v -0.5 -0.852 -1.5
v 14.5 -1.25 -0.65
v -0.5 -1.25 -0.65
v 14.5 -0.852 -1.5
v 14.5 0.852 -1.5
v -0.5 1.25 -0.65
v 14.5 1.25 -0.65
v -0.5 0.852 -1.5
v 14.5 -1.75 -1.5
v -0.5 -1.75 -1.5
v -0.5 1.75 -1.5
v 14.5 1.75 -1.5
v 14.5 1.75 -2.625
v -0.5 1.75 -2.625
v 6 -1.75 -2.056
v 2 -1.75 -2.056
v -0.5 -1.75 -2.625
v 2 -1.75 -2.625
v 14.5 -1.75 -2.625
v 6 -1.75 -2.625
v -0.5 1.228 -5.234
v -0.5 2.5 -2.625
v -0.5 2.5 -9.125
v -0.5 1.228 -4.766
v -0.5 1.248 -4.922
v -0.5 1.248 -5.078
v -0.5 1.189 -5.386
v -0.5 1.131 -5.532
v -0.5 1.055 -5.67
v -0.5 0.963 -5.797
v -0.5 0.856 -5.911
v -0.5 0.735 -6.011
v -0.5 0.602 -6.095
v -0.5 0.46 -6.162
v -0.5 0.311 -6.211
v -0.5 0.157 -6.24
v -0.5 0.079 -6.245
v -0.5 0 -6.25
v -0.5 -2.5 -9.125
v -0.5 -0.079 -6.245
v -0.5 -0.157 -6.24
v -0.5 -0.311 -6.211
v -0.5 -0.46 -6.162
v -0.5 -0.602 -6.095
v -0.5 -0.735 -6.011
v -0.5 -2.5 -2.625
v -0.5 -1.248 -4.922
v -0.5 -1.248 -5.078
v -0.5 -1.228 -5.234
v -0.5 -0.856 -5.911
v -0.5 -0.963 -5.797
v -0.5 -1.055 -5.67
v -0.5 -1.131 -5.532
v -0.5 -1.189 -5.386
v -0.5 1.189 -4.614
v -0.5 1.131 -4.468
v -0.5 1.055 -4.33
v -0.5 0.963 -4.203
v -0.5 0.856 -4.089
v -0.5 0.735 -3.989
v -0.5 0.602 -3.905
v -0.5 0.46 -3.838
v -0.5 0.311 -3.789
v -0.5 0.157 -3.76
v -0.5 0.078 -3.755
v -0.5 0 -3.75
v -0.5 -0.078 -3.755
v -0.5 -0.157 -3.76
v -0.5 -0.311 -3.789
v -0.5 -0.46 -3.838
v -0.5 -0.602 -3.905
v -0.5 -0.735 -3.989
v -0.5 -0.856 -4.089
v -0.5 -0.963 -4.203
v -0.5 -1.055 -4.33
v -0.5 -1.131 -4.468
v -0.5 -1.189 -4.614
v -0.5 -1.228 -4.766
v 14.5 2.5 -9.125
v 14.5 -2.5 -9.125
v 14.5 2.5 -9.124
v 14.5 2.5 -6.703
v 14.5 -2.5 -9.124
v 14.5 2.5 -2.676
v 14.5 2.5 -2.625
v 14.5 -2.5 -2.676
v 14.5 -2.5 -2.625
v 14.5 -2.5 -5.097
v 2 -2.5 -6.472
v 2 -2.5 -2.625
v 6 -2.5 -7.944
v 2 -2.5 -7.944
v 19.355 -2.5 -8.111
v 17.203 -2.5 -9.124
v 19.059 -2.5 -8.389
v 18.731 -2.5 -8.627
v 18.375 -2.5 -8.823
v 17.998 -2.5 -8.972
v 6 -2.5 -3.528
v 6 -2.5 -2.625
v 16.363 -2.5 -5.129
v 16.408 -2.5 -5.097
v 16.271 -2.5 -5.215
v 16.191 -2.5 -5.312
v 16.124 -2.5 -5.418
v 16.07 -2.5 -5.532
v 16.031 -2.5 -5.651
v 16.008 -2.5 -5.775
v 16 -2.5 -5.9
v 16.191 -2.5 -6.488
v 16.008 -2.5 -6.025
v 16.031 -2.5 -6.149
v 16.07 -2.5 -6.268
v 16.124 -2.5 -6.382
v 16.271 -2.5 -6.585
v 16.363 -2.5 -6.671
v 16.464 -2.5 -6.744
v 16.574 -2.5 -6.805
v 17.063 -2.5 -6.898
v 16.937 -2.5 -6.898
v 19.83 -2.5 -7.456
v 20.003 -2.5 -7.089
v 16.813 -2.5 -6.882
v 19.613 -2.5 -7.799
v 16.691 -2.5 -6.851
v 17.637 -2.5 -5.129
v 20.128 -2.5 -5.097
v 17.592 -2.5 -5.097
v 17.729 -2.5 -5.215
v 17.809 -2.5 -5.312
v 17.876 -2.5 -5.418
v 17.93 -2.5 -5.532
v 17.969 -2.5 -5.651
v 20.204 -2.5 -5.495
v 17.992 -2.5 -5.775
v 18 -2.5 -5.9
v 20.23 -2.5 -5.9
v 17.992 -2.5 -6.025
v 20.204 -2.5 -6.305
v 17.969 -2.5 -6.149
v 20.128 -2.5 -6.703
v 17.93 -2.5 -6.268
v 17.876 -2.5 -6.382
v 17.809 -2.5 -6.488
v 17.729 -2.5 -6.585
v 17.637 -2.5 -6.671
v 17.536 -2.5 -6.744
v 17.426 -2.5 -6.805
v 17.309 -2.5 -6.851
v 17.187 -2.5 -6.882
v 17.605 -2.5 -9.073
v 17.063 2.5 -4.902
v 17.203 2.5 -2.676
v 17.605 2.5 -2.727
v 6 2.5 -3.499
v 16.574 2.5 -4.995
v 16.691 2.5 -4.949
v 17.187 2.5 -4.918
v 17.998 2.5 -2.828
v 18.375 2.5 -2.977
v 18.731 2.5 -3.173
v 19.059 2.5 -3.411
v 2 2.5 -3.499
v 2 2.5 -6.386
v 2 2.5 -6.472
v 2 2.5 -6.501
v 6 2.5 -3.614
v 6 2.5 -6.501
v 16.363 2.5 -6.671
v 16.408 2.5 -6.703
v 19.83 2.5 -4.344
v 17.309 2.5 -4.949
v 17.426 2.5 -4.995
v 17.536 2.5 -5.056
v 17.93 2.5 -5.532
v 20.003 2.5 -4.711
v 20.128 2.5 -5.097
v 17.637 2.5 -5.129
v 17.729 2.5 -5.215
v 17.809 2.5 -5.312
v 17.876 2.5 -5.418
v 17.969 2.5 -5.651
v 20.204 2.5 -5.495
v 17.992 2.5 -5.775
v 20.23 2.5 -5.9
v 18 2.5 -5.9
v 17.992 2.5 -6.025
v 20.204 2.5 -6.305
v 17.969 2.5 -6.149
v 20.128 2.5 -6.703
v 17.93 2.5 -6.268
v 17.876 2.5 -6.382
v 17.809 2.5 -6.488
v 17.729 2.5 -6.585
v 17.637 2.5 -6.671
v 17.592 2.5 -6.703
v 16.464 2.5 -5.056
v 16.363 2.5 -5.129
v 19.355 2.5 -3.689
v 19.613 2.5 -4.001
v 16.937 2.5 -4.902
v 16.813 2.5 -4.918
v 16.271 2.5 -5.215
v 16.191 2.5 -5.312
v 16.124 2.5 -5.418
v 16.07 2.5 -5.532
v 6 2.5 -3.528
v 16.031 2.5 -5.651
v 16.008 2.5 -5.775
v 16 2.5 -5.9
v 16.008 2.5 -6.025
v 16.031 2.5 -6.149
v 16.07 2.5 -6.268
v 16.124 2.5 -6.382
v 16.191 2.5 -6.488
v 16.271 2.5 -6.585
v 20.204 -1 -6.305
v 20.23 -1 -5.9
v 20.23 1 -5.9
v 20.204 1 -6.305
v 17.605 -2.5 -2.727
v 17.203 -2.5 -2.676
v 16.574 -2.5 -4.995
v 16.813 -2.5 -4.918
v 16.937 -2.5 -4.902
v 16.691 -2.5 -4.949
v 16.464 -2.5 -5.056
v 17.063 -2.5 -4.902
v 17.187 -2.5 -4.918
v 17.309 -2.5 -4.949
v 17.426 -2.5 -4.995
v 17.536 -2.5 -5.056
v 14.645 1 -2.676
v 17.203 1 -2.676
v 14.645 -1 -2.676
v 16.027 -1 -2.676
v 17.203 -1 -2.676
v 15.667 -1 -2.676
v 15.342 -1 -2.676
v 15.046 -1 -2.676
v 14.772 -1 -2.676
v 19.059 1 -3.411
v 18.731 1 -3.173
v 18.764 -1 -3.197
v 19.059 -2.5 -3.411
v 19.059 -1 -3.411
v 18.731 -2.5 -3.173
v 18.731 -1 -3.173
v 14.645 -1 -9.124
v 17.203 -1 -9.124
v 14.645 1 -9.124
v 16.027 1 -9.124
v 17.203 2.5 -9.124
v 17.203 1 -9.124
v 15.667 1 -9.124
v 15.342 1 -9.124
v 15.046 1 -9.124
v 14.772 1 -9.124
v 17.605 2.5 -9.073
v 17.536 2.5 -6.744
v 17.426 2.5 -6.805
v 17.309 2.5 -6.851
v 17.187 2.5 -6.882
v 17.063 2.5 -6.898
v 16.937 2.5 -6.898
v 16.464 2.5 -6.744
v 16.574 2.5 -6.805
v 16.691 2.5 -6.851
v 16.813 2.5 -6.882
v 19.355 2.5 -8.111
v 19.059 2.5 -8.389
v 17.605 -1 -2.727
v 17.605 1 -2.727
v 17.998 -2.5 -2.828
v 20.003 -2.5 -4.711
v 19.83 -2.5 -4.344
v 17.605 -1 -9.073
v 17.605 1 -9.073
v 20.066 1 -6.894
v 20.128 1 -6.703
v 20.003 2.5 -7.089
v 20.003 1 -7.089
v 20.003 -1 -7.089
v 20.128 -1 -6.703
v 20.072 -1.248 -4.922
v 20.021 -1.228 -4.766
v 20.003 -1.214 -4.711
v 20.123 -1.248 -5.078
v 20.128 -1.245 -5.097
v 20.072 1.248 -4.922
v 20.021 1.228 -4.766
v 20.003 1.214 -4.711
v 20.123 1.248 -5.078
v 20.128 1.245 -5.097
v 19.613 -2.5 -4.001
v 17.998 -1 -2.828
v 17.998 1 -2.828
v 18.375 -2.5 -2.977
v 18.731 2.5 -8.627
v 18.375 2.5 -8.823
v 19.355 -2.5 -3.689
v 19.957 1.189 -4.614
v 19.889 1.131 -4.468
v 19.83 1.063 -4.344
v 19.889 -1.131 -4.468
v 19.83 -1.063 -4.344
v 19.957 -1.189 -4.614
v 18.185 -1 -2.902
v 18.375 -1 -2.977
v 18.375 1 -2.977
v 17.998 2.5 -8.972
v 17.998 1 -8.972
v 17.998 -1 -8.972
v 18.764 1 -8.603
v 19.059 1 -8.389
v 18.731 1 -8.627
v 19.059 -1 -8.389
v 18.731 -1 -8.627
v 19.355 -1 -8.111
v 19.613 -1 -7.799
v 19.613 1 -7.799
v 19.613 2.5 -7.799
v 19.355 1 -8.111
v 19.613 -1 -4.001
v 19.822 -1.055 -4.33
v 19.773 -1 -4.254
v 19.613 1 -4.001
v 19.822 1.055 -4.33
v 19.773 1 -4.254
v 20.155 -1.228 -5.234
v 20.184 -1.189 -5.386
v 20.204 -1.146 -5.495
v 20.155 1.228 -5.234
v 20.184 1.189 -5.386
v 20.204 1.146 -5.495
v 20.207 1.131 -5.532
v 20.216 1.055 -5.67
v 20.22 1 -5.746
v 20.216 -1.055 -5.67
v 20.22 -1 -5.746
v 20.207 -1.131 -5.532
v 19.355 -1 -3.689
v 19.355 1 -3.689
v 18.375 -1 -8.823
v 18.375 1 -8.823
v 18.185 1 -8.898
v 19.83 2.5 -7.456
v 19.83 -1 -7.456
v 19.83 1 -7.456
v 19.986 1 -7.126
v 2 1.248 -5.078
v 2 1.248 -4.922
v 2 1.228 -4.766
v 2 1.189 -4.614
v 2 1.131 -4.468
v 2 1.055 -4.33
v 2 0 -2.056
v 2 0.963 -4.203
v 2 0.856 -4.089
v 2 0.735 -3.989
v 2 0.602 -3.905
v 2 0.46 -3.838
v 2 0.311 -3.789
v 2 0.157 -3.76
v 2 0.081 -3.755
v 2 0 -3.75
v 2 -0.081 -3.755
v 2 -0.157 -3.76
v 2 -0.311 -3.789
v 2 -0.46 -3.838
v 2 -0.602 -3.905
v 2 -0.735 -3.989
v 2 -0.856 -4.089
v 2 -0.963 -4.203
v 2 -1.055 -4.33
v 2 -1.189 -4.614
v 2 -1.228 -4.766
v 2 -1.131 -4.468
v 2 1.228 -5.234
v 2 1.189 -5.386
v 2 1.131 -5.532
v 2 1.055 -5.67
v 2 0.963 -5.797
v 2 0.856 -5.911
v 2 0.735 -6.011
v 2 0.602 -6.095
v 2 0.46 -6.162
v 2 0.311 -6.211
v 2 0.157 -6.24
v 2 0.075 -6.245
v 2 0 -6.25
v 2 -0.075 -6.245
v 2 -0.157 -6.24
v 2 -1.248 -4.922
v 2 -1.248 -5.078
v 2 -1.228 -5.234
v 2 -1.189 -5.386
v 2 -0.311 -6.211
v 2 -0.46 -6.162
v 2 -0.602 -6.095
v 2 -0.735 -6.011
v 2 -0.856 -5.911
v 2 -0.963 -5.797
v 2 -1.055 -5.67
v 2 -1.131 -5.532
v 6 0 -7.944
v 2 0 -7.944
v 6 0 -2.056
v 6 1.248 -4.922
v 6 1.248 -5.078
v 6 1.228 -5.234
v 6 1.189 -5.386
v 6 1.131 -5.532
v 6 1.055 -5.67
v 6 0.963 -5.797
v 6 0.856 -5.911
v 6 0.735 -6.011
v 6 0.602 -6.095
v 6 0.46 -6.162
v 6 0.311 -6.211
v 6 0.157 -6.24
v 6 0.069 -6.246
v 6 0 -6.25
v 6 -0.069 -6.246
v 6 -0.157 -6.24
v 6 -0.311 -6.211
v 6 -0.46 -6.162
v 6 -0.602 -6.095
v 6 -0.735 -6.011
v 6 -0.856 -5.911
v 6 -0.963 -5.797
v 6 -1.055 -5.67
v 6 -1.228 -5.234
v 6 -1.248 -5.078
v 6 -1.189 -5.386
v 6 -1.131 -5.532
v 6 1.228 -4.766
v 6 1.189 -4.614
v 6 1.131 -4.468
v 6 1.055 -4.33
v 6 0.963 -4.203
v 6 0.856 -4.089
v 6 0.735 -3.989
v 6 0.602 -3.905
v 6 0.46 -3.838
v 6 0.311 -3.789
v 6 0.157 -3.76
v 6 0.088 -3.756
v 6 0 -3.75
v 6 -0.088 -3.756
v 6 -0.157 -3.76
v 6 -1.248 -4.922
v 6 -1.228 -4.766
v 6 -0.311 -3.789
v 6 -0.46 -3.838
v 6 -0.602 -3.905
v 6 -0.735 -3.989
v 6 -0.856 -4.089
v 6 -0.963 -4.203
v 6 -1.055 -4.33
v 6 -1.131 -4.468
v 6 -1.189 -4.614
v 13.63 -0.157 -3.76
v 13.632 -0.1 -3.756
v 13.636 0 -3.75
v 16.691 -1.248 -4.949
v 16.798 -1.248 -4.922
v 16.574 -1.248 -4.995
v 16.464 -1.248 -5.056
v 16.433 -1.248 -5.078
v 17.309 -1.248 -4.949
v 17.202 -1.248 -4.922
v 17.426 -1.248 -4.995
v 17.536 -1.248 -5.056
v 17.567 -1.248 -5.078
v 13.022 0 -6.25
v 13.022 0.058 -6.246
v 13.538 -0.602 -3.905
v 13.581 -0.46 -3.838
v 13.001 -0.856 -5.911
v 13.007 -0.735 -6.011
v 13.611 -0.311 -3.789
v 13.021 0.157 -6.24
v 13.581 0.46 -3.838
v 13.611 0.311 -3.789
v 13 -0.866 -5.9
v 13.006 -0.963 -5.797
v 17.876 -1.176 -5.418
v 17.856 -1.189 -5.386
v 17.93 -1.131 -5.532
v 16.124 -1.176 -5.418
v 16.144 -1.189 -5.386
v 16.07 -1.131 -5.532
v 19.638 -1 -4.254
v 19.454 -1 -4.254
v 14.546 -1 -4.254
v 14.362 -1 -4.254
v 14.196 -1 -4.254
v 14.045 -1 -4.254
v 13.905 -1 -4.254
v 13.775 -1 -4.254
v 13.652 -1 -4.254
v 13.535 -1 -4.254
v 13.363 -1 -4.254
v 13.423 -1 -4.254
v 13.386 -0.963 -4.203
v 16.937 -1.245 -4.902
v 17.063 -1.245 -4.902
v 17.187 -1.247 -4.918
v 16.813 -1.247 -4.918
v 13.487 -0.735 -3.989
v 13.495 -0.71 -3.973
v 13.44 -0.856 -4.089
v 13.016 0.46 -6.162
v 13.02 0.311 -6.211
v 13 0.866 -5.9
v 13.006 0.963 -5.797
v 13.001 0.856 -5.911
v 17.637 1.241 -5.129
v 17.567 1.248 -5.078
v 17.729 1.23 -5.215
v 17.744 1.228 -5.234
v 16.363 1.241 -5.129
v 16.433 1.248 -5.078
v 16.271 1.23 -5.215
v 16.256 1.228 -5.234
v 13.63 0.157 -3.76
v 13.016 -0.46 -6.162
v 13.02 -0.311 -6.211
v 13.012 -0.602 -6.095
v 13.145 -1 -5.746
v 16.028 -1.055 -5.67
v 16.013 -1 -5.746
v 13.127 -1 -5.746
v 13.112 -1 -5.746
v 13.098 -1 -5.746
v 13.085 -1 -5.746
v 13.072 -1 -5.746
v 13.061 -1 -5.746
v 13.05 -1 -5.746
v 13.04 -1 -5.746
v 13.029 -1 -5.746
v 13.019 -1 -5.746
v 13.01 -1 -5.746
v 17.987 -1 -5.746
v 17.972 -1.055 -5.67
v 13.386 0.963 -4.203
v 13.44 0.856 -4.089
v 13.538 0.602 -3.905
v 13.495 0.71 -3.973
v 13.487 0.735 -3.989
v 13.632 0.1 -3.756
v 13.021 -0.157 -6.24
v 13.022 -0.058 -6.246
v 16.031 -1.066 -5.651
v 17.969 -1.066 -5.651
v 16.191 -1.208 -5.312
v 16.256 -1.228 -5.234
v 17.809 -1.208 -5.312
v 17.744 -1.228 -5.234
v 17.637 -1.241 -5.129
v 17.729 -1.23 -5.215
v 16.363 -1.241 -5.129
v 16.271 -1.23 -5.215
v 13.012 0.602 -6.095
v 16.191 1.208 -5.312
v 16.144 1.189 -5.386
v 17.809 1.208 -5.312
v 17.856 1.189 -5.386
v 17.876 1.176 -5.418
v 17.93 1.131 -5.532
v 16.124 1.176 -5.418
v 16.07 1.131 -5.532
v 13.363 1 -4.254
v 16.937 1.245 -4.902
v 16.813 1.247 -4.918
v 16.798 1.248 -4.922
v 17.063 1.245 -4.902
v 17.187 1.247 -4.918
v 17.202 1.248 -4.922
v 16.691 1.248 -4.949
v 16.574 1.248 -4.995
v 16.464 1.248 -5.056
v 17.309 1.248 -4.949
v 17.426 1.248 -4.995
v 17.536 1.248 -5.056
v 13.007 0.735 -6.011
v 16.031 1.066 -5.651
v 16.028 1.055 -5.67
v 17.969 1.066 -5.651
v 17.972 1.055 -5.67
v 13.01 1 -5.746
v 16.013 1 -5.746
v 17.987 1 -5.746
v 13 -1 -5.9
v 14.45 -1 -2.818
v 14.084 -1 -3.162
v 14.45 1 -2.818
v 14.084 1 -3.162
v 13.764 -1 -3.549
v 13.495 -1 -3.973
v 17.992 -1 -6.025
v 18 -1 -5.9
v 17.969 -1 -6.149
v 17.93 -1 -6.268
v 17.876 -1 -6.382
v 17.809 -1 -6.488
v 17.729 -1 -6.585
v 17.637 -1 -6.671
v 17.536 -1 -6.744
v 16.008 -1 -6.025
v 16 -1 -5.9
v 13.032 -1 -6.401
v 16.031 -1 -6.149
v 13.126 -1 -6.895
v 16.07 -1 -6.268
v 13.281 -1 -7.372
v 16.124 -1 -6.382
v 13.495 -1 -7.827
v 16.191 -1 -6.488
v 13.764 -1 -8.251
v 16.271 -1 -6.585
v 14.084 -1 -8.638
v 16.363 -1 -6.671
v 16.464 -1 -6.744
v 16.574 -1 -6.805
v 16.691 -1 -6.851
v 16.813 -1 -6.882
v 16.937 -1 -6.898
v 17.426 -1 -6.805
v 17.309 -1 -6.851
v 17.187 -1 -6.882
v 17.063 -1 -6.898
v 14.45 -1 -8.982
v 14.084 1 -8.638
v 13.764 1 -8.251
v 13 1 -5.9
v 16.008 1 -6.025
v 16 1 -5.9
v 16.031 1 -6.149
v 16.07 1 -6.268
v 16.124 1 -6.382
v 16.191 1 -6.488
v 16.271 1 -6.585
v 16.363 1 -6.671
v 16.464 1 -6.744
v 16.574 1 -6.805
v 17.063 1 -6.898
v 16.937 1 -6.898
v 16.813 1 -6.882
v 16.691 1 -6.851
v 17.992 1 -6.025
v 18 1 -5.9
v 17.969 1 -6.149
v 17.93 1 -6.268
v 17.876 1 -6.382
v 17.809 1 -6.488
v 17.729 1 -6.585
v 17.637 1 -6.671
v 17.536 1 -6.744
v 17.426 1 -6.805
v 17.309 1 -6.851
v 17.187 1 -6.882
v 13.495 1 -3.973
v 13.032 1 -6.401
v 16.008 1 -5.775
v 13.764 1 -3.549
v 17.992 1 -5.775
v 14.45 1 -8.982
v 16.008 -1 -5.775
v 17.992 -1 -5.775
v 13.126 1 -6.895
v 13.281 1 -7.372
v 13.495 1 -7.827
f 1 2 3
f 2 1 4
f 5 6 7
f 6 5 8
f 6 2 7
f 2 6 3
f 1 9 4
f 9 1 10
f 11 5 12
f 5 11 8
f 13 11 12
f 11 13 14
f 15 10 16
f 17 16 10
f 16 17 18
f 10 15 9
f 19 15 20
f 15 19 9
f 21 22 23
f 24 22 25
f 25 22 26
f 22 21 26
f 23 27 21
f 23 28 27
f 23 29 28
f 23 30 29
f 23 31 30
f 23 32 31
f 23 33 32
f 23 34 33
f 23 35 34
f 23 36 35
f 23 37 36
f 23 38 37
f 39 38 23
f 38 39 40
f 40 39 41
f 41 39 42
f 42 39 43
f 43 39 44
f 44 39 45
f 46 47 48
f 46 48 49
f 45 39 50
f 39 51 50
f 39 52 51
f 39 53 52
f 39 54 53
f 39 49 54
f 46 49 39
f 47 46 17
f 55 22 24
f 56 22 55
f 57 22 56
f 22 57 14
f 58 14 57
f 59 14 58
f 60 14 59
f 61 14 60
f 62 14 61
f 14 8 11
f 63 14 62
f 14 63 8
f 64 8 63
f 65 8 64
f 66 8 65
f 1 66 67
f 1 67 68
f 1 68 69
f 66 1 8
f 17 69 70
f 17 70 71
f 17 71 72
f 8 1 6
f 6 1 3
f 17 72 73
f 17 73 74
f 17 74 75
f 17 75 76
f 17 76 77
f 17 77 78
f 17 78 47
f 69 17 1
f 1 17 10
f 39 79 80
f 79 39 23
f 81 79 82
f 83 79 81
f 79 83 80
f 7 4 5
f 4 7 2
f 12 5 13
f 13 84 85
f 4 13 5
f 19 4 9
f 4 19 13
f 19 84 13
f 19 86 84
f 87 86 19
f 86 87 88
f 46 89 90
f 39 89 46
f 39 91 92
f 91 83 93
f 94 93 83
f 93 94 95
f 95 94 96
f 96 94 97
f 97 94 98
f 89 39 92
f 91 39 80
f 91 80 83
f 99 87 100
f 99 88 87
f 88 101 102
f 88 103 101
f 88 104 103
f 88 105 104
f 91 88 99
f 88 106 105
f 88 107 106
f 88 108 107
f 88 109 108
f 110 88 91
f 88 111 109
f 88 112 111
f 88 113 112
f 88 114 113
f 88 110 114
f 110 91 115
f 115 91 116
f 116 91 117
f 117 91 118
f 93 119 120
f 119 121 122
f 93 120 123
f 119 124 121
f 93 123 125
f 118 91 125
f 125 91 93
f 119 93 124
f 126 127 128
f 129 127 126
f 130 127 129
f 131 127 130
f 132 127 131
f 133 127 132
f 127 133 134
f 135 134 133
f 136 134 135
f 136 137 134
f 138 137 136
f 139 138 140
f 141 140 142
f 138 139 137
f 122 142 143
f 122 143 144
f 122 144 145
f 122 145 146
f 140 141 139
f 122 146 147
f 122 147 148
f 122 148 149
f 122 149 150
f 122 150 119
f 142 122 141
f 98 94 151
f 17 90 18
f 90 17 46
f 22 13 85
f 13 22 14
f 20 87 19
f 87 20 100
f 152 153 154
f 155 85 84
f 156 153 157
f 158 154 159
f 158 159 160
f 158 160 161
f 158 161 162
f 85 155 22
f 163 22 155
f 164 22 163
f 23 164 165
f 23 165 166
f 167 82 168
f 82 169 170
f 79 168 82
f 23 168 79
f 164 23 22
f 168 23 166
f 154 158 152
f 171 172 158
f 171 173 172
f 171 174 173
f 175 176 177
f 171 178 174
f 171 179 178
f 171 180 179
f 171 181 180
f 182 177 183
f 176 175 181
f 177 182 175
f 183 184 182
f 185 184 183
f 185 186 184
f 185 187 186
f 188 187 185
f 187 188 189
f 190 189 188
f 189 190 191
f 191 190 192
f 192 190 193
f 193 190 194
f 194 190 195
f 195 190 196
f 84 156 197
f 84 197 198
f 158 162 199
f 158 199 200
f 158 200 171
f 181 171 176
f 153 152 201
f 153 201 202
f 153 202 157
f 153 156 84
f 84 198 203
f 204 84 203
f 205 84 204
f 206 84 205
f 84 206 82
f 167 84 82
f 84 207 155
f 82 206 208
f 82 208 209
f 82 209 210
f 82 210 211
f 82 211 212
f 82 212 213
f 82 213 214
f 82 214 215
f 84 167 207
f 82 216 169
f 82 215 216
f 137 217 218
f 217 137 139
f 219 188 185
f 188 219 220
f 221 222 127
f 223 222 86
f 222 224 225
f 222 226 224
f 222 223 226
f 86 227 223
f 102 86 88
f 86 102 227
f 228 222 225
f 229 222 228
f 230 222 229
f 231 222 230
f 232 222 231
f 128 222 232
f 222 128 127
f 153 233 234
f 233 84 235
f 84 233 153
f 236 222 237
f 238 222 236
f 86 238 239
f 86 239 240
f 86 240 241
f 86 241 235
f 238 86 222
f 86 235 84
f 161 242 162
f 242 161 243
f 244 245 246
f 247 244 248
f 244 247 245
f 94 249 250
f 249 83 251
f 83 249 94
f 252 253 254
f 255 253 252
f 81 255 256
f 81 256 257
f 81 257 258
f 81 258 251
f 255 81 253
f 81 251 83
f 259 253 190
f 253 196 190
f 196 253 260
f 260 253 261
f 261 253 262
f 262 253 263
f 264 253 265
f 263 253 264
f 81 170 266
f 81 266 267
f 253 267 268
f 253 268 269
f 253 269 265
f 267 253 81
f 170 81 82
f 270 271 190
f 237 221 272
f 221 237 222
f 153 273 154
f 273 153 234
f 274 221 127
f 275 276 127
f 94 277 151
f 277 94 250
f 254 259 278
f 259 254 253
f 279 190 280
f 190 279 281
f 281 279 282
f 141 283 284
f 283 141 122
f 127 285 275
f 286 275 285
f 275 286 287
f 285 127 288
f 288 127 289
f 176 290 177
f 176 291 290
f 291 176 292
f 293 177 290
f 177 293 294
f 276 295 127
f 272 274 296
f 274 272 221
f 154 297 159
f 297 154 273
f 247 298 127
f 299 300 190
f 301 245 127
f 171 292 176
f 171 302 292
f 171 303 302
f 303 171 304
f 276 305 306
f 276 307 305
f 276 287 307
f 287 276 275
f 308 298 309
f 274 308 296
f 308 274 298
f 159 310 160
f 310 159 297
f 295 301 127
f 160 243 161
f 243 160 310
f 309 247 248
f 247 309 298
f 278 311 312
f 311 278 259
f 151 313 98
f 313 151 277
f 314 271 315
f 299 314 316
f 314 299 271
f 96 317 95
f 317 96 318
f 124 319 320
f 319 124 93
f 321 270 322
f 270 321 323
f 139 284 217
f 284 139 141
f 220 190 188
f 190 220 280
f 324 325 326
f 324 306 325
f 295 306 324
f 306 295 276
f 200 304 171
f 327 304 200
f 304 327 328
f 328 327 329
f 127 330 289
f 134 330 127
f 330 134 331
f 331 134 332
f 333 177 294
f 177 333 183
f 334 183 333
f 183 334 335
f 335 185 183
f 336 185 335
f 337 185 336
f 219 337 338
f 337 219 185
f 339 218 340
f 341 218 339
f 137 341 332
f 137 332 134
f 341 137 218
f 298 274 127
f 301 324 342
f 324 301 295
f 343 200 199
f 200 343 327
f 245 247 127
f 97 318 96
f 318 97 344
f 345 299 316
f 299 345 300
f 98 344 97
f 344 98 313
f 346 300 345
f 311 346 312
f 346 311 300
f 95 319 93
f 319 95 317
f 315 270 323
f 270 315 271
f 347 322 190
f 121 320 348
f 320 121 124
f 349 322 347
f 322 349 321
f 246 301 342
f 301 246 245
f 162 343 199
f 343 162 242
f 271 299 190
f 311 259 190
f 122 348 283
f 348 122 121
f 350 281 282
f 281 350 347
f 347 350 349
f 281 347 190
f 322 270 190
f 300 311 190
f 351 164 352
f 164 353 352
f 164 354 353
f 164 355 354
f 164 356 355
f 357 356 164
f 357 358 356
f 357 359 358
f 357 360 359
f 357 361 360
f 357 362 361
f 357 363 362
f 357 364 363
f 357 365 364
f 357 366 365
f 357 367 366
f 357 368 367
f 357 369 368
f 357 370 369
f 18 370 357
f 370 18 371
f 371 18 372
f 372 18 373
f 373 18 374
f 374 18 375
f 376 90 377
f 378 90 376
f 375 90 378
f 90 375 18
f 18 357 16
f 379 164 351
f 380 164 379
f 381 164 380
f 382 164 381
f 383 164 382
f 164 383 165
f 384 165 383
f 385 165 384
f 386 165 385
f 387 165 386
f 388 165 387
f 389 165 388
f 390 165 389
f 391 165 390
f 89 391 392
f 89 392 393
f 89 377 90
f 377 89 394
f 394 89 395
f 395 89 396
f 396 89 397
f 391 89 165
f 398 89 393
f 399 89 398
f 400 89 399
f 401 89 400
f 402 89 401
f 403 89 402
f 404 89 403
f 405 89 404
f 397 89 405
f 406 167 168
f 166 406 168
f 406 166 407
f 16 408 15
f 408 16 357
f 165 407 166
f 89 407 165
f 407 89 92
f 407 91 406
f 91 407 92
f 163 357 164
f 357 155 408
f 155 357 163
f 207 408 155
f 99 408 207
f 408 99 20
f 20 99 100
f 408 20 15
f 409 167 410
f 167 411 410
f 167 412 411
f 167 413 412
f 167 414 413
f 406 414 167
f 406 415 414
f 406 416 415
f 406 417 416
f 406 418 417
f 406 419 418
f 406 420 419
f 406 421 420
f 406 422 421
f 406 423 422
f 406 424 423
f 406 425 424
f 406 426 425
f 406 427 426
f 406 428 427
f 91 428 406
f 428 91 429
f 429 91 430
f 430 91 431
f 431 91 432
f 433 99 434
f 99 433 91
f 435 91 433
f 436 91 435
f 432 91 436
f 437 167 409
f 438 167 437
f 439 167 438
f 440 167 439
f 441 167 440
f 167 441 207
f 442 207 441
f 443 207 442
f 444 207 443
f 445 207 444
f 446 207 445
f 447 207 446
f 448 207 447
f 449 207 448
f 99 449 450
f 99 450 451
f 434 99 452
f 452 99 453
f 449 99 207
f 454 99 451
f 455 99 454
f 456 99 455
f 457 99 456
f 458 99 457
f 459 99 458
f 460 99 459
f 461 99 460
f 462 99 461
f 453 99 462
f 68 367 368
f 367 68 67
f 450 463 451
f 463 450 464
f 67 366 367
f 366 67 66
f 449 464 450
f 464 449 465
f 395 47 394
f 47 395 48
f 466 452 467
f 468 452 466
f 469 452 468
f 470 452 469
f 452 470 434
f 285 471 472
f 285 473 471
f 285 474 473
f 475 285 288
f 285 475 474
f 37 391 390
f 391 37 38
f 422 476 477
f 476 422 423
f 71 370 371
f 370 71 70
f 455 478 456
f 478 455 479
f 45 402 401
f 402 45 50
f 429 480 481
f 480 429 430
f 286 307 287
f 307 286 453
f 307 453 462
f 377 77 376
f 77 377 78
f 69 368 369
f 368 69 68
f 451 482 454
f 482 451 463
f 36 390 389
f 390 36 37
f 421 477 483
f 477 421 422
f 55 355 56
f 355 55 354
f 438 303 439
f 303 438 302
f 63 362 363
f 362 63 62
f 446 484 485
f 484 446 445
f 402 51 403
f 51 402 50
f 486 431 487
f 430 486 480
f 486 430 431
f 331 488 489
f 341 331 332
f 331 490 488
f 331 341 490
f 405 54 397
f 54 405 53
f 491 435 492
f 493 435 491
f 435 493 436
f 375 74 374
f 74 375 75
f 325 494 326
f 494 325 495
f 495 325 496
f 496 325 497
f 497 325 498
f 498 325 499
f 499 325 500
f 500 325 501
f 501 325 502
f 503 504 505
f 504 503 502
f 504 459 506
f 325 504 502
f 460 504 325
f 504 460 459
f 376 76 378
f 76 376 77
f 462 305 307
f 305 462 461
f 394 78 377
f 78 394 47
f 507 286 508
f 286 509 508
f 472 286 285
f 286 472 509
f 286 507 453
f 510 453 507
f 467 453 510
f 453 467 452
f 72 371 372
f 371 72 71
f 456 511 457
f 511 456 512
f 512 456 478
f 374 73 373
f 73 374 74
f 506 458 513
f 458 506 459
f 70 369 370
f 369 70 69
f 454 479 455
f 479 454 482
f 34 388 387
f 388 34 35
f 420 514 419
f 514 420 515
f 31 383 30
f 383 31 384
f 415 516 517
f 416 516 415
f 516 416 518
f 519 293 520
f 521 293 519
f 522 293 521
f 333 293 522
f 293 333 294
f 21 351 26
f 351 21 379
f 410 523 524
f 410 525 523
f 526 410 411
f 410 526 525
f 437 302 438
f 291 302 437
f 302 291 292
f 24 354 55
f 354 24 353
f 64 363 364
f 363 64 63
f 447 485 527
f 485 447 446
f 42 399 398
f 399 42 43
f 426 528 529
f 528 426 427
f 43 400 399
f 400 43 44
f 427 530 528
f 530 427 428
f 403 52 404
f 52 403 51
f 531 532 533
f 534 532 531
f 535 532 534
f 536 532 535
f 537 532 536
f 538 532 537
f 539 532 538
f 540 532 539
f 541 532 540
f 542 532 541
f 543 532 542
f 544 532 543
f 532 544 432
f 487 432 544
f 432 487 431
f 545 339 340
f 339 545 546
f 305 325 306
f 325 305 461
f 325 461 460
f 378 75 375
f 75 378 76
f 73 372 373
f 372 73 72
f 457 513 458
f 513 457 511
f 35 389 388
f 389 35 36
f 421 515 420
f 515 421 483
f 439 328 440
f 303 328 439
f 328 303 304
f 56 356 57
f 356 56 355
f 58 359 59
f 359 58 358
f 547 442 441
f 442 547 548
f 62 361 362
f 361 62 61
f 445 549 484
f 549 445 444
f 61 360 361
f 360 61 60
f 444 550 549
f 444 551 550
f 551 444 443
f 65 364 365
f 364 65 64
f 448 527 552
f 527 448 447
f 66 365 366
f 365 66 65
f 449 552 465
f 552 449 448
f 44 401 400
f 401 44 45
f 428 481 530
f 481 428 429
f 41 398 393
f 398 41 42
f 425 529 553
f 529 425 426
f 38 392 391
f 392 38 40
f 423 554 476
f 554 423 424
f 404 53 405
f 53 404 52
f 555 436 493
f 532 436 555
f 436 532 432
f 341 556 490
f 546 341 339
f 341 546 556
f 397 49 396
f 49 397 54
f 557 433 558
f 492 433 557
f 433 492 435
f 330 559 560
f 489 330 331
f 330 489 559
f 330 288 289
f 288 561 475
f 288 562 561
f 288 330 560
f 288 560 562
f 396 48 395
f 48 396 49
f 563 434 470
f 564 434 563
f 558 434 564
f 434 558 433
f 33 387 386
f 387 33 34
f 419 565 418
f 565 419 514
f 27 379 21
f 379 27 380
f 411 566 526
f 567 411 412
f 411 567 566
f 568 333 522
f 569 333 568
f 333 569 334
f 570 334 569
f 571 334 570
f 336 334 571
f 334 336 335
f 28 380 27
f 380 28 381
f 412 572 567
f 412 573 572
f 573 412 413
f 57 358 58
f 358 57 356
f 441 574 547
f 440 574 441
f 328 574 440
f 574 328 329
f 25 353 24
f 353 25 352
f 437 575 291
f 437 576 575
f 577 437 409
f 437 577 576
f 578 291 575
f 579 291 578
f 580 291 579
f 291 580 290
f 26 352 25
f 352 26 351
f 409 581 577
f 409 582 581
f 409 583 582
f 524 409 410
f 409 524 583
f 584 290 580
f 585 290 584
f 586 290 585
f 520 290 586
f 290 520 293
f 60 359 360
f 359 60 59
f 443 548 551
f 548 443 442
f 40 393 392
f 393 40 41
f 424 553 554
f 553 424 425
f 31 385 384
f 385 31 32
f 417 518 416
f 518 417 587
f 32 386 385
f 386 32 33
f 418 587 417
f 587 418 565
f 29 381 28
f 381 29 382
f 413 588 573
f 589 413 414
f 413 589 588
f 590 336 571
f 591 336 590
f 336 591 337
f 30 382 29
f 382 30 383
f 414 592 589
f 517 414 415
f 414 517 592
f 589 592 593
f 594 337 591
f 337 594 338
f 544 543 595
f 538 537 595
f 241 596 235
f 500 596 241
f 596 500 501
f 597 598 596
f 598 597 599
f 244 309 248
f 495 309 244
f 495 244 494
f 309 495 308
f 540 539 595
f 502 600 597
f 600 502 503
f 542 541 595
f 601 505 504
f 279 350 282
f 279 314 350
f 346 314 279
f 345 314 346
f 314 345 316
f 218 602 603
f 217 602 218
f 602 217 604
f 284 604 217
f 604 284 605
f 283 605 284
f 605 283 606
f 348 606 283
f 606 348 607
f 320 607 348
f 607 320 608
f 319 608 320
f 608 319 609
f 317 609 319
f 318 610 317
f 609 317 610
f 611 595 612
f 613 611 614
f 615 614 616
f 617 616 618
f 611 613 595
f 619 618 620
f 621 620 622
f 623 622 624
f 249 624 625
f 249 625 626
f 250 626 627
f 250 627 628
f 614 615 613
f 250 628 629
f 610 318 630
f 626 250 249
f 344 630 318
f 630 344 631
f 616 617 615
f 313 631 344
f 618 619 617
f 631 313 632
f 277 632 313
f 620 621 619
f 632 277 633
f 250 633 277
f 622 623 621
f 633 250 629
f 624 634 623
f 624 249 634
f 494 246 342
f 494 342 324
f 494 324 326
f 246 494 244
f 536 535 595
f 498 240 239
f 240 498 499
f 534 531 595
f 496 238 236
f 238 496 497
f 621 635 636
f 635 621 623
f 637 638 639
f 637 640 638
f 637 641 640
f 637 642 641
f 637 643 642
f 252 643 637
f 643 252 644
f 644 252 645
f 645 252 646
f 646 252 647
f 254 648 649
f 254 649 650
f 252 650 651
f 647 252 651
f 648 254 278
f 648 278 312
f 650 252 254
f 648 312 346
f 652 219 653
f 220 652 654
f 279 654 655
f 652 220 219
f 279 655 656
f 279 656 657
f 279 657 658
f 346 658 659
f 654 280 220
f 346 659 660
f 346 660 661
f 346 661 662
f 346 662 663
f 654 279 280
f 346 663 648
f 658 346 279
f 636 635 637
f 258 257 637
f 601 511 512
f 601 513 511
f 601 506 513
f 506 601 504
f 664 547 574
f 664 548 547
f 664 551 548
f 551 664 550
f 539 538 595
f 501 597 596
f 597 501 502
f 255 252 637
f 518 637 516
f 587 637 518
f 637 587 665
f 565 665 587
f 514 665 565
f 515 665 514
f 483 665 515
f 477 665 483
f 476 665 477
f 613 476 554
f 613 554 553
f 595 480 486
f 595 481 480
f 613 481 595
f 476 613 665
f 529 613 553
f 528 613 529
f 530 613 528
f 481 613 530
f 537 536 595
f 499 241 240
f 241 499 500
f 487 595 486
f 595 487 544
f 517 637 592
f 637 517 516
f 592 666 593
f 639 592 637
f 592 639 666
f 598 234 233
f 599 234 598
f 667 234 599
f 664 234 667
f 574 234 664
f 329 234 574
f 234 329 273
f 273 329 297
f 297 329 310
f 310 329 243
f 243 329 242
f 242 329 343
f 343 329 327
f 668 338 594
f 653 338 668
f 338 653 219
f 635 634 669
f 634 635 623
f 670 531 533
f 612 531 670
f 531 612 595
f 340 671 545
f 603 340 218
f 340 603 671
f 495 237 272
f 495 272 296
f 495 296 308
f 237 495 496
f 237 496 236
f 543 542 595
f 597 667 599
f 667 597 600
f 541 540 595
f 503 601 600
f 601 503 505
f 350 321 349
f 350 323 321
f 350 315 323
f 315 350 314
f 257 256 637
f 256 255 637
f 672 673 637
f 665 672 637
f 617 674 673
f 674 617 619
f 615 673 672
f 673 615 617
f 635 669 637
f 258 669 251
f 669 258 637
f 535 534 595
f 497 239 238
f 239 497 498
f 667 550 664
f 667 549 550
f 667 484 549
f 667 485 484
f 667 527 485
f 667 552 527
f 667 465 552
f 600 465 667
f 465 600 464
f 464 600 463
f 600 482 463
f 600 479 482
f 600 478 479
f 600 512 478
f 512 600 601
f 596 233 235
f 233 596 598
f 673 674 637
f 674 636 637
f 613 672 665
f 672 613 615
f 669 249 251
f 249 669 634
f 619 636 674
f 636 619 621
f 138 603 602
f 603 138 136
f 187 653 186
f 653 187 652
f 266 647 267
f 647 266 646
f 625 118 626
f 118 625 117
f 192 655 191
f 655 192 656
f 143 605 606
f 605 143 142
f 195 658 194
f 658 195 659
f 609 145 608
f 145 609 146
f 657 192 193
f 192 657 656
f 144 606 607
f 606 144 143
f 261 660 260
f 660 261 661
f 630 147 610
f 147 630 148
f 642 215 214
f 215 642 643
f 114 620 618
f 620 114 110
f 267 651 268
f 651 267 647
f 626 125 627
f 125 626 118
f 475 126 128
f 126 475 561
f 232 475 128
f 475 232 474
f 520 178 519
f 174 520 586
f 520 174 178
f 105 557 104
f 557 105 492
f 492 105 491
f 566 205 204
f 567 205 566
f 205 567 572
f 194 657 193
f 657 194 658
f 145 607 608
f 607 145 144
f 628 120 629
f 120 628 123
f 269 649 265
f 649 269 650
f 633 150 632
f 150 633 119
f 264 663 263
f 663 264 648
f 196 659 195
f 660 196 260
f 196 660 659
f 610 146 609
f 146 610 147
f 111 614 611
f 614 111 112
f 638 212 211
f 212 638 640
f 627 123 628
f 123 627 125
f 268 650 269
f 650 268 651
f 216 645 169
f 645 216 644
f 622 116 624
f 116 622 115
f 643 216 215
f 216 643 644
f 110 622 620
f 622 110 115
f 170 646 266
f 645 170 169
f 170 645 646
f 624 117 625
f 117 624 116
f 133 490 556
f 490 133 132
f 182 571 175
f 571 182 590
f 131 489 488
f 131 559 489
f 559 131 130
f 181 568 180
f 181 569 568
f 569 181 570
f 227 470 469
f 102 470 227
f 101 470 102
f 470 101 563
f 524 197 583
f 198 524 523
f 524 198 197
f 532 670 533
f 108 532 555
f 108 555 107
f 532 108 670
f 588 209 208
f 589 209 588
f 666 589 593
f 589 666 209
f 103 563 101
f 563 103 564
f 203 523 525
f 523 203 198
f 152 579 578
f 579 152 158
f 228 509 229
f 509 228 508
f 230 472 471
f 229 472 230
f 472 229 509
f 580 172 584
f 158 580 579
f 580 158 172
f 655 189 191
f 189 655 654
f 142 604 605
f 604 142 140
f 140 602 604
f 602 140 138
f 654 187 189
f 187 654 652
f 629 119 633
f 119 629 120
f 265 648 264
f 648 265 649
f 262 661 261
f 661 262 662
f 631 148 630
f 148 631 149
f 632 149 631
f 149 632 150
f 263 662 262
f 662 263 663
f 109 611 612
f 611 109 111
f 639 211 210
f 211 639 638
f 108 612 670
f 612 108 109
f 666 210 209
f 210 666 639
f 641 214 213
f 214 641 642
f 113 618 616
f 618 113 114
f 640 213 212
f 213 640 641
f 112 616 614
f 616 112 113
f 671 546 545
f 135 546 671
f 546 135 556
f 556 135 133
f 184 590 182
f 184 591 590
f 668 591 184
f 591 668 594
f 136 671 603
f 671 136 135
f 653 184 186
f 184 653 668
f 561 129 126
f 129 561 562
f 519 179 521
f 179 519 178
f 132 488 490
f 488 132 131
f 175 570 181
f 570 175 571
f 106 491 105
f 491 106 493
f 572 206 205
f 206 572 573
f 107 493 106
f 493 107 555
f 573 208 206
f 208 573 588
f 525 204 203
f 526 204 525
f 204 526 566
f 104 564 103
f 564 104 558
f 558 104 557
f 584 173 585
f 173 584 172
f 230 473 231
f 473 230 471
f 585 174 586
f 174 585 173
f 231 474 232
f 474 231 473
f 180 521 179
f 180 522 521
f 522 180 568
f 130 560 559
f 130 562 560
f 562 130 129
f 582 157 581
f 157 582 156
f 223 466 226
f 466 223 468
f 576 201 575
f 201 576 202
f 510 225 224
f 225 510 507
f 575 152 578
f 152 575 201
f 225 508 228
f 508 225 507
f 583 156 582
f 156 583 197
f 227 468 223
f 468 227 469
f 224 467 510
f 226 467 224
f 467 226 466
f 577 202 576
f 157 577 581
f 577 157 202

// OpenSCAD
// file: openscad-extra/src/nut.scad
module make_hex_nut(w, h, d=0){
    // d = inner diameter
    // w = width across the flats
    // h = height or thickness
    s = w/sqrt(3);
    difference(){
        union(){
            for(i=[0:1:2]){
                rotate([0,0,120*i])
                cube([w, s, h], center=true);
            }
        }
        if(d){
            cylinder(d=d, h=h+1, center=true);
        }
    }
}

//make_hex_nut(w=5, h=2, d=2.5);

module make_nut_2(d=2){
    make_hex_nut(w=4.8, h=2, d=d);
}

module make_nut_w4_h1p5(d=2){
    make_hex_nut(w=4, h=1.5, d=d);
}

module make_nut_2_5(d=2, h=3.5){
    make_hex_nut(w=5+0.5/2, h=h, d=d);
}

module make_nut_2_5_test(){
    difference(){
        translate([0,0,-.5])
        cube([10,10,2], center=true);
        make_nut_2_5(d=0);
    }
}

module make_nut_2_5_test_downward(){
    difference(){
        translate([0,0,1])
        cube([10,10,2*2.5], center=true);
        color("red")
        make_nut_2_5(d=0);
        color("blue")
        cylinder(d=2.5, h=10, center=true);
    }
}

module make_nut_2_5_test_punchout(){
    difference(){
        translate([0,0,1.5])
        cube([10,10,2*1.5], center=true);
        color("red")
        make_nut_2_5(d=0);
        color("blue")
        cylinder(d=2.5, h=10, center=true);
    }
    color("green")
    translate([0,0,1.8])
    cube([10,10,0.25], center=true);
}

//make_nut_2_5_test();
make_nut_w4_h1p5();
//make_nut_2_5_test_downward();
//make_nut_2_5_test_punchout();
// file: openscad-extra/src/countersink.scad
/*
Countersink depression for tapered screw heads.
*/

module make_countersink(d1=0, d2=0, h=0, outer=10, inner=0, $fn=25){
    /*
    d1 = shaft diameter
    d2 = head diameter
    h = height of taper
    outer = height of head mass
    inner = height of shaft mass, including taper
    */
    default_taper_height = 2;
    d1 = d1 ? d1 : 2.5;
    d2 = d2 ? d2 : 5;
    h = h ? h : default_taper_height;
    inner = (inner ? inner : 10) - default_taper_height;
    
    translate([0, 0, -default_taper_height/2])
    union(){
        
        // taper
        cylinder(d1=d1, d2=d2, h=h, center=true, $fn=$fn);
    
        // big top
    	translate([0, 0, h/2])
    	cylinder(d=d2, h=outer, center=false, $fn=$fn);
        
    	// lower bottom
    	translate([0, 0, -h/2-inner])
    	cylinder(d=d1, h=inner, center=false, $fn=$fn);
	}
}

make_countersink(inner=10);

color("blue")
translate([0,2,0])
cylinder(d=2.5, h=20, center=true, $fn=100);
// file: leg_knee_tendon_anchor.scad
use <openscad-extra/src/countersink.scad>;
use <openscad-extra/src/nut.scad>;

module leg_knee_tendon_anchor_slot(width=3, width_buffer=0, height=1){
    linear_extrude(height=30)
    polygon([
        [(width+width_buffer)/2,0],
        [(width+width_buffer)/2/4,height],
        [-(width+width_buffer)/2/4,height],
        [-(width+width_buffer)/2,0]]);
}

module leg_knee_tendon_anchor_top_base(buffer=0){
    
    // track cutout
    translate([-1.5,0,-1+.15])
    rotate([0,90,0])
    rotate([0,0,90])
    leg_knee_tendon_anchor_slot(width_buffer=buffer*2, height=2);
    
    // slot cutout
    translate([20/2-1.5,0,2.5+5/2])
    cube([20, 4+buffer*2, 10], center=true);
    
}

module leg_knee_tendon_anchor_top(){
    
    wire_x = 12+5;
    wire_z = 6-0.1;
    wire_d = 6.46;
    
    difference(){
        union(){
            intersection(){
                
                // track mass
                if(1)
                translate([0,0,1.5])
                leg_knee_tendon_anchor_top_base(buffer=-0.25);
                
                // bounding box
                if(1)
                color("blue")
                translate([5+2,0,4.125])
                cube([15,10,10], center=true);
            }

            // top mass
            color("blue")
            translate([5+2,0,5.5+.25+.05+0.15/2])
            cube([15,5,6.5], center=true);
                
            // tendon mount mass
            hull(){
                translate([wire_x,0,wire_z])
                rotate([90,0,0])
                cylinder(d=wire_d, h=5, center=true, $fn=50);
                
                translate([6,0,wire_z])
                rotate([90,0,0])
                cylinder(d=wire_d, h=5, center=true, $fn=50);
            }
            
        }
        
        // small hux nut cutout
        if(0)
        color("red")
        hull()
        for(i=[0:1])
        translate([2,i*5,5])
        rotate([0,90,0])
        rotate([0,0,30])
        make_hex_nut(w=5, h=2, d=0);

        // hex nut cutout
        hull(){
            for(i=[0:3])
            translate([4,i,5])
            rotate([0,90,0])
            rotate([0,0,60/2])
            make_hex_nut(w=5.1, h=4, d=0);
        }

        // axle hole
        translate([0,0,5])
        rotate([0,90,0])
        cylinder(d=2.5, h=100, center=true, $fn=50);
            
        // wire slot cutout
        color("red")
        translate([wire_x,0,wire_z])
        rotate([90,0,0])
        cylinder(d=8, h=2, center=true, $fn=50);
    
        // wire screw hole
        color("red")
        translate([wire_x,0,wire_z])
        rotate([90,0,0])
        cylinder(d=2, h=20, center=true, $fn=50);

    }
    
}

module leg_knee_tendon_anchor_bottom(){
    
    axle_offset_z = -.5+3;
    axle_mass_h = 7.5+2;
    
    difference(){
        union(){
            // main mass
            if(0)
            translate([0,0,-2.5/2])
            cube([25, 5, 5+2.5], center=true);
            
            // axle mount mass
            color("blue")
            translate([-10/2-5/2-2.5/2+1-5/2, 0, axle_mass_h/2/2+axle_offset_z-1.5])
            cube([12.5-5, 5, axle_mass_h], center=true);
            
            if(1)
            hull()
            translate([0,0,-2.5])
            for(i=[-1:2:1])
            translate([2.5*4*i,0,0])
            rotate([90,0,0])
            cylinder(d=8, h=5, center=true, $fn=50);
        }
        
        // mount holes
        translate([0,0,-2.5])
        for(i=[-1:2:1])
        color("red")
        translate([2.5*4*i,-2.6,0])
        rotate([90,0,0])
        make_countersink(d1=3);
        
        // flattening cutout
        if(0)
        translate([7,0,5+5/2])
        cube([25, 6, 10], center=true);
        
        // hex nut cutout
        if(0)
        translate([2,0,-4+axle_offset_z])
        hull(){
            for(i=[0:3])
            translate([-7.5,i,5+.5])
            rotate([0,90,0])
            rotate([0,0,60/2])
            make_hex_nut(w=5.1, h=4, d=0);
        }
    
        // main axle cutout
        translate([-14,0,1.5+axle_offset_z])
        rotate([0,-90,0])
        //make_countersink(d1=3, inner=40);
        cylinder(d=2.5, h=40, center=true, $fn=50);
        
        translate([-5,0,.5]){
            //color("red")
            leg_knee_tendon_anchor_top_base();
        }
            
    }
    
}

if(1)
//color("green")
translate([0,0,-1])
leg_knee_tendon_anchor_top();

leg_knee_tendon_anchor_bottom();

color("green")
translate([0,0,1+3])
rotate([0,90,0])
cylinder(d=1, h=100, center=true, $fn=50);

if(0)
color("red")
for(i=[0:10])
translate([5*i-20,0,0])
rotate([90,0,0])
cylinder(d=1, h=100, center=true, $fn=50);
// main file
use <leg_knee_tendon_anchor.scad>;

rotate([180,0,0])
leg_knee_tendon_anchor_top();
